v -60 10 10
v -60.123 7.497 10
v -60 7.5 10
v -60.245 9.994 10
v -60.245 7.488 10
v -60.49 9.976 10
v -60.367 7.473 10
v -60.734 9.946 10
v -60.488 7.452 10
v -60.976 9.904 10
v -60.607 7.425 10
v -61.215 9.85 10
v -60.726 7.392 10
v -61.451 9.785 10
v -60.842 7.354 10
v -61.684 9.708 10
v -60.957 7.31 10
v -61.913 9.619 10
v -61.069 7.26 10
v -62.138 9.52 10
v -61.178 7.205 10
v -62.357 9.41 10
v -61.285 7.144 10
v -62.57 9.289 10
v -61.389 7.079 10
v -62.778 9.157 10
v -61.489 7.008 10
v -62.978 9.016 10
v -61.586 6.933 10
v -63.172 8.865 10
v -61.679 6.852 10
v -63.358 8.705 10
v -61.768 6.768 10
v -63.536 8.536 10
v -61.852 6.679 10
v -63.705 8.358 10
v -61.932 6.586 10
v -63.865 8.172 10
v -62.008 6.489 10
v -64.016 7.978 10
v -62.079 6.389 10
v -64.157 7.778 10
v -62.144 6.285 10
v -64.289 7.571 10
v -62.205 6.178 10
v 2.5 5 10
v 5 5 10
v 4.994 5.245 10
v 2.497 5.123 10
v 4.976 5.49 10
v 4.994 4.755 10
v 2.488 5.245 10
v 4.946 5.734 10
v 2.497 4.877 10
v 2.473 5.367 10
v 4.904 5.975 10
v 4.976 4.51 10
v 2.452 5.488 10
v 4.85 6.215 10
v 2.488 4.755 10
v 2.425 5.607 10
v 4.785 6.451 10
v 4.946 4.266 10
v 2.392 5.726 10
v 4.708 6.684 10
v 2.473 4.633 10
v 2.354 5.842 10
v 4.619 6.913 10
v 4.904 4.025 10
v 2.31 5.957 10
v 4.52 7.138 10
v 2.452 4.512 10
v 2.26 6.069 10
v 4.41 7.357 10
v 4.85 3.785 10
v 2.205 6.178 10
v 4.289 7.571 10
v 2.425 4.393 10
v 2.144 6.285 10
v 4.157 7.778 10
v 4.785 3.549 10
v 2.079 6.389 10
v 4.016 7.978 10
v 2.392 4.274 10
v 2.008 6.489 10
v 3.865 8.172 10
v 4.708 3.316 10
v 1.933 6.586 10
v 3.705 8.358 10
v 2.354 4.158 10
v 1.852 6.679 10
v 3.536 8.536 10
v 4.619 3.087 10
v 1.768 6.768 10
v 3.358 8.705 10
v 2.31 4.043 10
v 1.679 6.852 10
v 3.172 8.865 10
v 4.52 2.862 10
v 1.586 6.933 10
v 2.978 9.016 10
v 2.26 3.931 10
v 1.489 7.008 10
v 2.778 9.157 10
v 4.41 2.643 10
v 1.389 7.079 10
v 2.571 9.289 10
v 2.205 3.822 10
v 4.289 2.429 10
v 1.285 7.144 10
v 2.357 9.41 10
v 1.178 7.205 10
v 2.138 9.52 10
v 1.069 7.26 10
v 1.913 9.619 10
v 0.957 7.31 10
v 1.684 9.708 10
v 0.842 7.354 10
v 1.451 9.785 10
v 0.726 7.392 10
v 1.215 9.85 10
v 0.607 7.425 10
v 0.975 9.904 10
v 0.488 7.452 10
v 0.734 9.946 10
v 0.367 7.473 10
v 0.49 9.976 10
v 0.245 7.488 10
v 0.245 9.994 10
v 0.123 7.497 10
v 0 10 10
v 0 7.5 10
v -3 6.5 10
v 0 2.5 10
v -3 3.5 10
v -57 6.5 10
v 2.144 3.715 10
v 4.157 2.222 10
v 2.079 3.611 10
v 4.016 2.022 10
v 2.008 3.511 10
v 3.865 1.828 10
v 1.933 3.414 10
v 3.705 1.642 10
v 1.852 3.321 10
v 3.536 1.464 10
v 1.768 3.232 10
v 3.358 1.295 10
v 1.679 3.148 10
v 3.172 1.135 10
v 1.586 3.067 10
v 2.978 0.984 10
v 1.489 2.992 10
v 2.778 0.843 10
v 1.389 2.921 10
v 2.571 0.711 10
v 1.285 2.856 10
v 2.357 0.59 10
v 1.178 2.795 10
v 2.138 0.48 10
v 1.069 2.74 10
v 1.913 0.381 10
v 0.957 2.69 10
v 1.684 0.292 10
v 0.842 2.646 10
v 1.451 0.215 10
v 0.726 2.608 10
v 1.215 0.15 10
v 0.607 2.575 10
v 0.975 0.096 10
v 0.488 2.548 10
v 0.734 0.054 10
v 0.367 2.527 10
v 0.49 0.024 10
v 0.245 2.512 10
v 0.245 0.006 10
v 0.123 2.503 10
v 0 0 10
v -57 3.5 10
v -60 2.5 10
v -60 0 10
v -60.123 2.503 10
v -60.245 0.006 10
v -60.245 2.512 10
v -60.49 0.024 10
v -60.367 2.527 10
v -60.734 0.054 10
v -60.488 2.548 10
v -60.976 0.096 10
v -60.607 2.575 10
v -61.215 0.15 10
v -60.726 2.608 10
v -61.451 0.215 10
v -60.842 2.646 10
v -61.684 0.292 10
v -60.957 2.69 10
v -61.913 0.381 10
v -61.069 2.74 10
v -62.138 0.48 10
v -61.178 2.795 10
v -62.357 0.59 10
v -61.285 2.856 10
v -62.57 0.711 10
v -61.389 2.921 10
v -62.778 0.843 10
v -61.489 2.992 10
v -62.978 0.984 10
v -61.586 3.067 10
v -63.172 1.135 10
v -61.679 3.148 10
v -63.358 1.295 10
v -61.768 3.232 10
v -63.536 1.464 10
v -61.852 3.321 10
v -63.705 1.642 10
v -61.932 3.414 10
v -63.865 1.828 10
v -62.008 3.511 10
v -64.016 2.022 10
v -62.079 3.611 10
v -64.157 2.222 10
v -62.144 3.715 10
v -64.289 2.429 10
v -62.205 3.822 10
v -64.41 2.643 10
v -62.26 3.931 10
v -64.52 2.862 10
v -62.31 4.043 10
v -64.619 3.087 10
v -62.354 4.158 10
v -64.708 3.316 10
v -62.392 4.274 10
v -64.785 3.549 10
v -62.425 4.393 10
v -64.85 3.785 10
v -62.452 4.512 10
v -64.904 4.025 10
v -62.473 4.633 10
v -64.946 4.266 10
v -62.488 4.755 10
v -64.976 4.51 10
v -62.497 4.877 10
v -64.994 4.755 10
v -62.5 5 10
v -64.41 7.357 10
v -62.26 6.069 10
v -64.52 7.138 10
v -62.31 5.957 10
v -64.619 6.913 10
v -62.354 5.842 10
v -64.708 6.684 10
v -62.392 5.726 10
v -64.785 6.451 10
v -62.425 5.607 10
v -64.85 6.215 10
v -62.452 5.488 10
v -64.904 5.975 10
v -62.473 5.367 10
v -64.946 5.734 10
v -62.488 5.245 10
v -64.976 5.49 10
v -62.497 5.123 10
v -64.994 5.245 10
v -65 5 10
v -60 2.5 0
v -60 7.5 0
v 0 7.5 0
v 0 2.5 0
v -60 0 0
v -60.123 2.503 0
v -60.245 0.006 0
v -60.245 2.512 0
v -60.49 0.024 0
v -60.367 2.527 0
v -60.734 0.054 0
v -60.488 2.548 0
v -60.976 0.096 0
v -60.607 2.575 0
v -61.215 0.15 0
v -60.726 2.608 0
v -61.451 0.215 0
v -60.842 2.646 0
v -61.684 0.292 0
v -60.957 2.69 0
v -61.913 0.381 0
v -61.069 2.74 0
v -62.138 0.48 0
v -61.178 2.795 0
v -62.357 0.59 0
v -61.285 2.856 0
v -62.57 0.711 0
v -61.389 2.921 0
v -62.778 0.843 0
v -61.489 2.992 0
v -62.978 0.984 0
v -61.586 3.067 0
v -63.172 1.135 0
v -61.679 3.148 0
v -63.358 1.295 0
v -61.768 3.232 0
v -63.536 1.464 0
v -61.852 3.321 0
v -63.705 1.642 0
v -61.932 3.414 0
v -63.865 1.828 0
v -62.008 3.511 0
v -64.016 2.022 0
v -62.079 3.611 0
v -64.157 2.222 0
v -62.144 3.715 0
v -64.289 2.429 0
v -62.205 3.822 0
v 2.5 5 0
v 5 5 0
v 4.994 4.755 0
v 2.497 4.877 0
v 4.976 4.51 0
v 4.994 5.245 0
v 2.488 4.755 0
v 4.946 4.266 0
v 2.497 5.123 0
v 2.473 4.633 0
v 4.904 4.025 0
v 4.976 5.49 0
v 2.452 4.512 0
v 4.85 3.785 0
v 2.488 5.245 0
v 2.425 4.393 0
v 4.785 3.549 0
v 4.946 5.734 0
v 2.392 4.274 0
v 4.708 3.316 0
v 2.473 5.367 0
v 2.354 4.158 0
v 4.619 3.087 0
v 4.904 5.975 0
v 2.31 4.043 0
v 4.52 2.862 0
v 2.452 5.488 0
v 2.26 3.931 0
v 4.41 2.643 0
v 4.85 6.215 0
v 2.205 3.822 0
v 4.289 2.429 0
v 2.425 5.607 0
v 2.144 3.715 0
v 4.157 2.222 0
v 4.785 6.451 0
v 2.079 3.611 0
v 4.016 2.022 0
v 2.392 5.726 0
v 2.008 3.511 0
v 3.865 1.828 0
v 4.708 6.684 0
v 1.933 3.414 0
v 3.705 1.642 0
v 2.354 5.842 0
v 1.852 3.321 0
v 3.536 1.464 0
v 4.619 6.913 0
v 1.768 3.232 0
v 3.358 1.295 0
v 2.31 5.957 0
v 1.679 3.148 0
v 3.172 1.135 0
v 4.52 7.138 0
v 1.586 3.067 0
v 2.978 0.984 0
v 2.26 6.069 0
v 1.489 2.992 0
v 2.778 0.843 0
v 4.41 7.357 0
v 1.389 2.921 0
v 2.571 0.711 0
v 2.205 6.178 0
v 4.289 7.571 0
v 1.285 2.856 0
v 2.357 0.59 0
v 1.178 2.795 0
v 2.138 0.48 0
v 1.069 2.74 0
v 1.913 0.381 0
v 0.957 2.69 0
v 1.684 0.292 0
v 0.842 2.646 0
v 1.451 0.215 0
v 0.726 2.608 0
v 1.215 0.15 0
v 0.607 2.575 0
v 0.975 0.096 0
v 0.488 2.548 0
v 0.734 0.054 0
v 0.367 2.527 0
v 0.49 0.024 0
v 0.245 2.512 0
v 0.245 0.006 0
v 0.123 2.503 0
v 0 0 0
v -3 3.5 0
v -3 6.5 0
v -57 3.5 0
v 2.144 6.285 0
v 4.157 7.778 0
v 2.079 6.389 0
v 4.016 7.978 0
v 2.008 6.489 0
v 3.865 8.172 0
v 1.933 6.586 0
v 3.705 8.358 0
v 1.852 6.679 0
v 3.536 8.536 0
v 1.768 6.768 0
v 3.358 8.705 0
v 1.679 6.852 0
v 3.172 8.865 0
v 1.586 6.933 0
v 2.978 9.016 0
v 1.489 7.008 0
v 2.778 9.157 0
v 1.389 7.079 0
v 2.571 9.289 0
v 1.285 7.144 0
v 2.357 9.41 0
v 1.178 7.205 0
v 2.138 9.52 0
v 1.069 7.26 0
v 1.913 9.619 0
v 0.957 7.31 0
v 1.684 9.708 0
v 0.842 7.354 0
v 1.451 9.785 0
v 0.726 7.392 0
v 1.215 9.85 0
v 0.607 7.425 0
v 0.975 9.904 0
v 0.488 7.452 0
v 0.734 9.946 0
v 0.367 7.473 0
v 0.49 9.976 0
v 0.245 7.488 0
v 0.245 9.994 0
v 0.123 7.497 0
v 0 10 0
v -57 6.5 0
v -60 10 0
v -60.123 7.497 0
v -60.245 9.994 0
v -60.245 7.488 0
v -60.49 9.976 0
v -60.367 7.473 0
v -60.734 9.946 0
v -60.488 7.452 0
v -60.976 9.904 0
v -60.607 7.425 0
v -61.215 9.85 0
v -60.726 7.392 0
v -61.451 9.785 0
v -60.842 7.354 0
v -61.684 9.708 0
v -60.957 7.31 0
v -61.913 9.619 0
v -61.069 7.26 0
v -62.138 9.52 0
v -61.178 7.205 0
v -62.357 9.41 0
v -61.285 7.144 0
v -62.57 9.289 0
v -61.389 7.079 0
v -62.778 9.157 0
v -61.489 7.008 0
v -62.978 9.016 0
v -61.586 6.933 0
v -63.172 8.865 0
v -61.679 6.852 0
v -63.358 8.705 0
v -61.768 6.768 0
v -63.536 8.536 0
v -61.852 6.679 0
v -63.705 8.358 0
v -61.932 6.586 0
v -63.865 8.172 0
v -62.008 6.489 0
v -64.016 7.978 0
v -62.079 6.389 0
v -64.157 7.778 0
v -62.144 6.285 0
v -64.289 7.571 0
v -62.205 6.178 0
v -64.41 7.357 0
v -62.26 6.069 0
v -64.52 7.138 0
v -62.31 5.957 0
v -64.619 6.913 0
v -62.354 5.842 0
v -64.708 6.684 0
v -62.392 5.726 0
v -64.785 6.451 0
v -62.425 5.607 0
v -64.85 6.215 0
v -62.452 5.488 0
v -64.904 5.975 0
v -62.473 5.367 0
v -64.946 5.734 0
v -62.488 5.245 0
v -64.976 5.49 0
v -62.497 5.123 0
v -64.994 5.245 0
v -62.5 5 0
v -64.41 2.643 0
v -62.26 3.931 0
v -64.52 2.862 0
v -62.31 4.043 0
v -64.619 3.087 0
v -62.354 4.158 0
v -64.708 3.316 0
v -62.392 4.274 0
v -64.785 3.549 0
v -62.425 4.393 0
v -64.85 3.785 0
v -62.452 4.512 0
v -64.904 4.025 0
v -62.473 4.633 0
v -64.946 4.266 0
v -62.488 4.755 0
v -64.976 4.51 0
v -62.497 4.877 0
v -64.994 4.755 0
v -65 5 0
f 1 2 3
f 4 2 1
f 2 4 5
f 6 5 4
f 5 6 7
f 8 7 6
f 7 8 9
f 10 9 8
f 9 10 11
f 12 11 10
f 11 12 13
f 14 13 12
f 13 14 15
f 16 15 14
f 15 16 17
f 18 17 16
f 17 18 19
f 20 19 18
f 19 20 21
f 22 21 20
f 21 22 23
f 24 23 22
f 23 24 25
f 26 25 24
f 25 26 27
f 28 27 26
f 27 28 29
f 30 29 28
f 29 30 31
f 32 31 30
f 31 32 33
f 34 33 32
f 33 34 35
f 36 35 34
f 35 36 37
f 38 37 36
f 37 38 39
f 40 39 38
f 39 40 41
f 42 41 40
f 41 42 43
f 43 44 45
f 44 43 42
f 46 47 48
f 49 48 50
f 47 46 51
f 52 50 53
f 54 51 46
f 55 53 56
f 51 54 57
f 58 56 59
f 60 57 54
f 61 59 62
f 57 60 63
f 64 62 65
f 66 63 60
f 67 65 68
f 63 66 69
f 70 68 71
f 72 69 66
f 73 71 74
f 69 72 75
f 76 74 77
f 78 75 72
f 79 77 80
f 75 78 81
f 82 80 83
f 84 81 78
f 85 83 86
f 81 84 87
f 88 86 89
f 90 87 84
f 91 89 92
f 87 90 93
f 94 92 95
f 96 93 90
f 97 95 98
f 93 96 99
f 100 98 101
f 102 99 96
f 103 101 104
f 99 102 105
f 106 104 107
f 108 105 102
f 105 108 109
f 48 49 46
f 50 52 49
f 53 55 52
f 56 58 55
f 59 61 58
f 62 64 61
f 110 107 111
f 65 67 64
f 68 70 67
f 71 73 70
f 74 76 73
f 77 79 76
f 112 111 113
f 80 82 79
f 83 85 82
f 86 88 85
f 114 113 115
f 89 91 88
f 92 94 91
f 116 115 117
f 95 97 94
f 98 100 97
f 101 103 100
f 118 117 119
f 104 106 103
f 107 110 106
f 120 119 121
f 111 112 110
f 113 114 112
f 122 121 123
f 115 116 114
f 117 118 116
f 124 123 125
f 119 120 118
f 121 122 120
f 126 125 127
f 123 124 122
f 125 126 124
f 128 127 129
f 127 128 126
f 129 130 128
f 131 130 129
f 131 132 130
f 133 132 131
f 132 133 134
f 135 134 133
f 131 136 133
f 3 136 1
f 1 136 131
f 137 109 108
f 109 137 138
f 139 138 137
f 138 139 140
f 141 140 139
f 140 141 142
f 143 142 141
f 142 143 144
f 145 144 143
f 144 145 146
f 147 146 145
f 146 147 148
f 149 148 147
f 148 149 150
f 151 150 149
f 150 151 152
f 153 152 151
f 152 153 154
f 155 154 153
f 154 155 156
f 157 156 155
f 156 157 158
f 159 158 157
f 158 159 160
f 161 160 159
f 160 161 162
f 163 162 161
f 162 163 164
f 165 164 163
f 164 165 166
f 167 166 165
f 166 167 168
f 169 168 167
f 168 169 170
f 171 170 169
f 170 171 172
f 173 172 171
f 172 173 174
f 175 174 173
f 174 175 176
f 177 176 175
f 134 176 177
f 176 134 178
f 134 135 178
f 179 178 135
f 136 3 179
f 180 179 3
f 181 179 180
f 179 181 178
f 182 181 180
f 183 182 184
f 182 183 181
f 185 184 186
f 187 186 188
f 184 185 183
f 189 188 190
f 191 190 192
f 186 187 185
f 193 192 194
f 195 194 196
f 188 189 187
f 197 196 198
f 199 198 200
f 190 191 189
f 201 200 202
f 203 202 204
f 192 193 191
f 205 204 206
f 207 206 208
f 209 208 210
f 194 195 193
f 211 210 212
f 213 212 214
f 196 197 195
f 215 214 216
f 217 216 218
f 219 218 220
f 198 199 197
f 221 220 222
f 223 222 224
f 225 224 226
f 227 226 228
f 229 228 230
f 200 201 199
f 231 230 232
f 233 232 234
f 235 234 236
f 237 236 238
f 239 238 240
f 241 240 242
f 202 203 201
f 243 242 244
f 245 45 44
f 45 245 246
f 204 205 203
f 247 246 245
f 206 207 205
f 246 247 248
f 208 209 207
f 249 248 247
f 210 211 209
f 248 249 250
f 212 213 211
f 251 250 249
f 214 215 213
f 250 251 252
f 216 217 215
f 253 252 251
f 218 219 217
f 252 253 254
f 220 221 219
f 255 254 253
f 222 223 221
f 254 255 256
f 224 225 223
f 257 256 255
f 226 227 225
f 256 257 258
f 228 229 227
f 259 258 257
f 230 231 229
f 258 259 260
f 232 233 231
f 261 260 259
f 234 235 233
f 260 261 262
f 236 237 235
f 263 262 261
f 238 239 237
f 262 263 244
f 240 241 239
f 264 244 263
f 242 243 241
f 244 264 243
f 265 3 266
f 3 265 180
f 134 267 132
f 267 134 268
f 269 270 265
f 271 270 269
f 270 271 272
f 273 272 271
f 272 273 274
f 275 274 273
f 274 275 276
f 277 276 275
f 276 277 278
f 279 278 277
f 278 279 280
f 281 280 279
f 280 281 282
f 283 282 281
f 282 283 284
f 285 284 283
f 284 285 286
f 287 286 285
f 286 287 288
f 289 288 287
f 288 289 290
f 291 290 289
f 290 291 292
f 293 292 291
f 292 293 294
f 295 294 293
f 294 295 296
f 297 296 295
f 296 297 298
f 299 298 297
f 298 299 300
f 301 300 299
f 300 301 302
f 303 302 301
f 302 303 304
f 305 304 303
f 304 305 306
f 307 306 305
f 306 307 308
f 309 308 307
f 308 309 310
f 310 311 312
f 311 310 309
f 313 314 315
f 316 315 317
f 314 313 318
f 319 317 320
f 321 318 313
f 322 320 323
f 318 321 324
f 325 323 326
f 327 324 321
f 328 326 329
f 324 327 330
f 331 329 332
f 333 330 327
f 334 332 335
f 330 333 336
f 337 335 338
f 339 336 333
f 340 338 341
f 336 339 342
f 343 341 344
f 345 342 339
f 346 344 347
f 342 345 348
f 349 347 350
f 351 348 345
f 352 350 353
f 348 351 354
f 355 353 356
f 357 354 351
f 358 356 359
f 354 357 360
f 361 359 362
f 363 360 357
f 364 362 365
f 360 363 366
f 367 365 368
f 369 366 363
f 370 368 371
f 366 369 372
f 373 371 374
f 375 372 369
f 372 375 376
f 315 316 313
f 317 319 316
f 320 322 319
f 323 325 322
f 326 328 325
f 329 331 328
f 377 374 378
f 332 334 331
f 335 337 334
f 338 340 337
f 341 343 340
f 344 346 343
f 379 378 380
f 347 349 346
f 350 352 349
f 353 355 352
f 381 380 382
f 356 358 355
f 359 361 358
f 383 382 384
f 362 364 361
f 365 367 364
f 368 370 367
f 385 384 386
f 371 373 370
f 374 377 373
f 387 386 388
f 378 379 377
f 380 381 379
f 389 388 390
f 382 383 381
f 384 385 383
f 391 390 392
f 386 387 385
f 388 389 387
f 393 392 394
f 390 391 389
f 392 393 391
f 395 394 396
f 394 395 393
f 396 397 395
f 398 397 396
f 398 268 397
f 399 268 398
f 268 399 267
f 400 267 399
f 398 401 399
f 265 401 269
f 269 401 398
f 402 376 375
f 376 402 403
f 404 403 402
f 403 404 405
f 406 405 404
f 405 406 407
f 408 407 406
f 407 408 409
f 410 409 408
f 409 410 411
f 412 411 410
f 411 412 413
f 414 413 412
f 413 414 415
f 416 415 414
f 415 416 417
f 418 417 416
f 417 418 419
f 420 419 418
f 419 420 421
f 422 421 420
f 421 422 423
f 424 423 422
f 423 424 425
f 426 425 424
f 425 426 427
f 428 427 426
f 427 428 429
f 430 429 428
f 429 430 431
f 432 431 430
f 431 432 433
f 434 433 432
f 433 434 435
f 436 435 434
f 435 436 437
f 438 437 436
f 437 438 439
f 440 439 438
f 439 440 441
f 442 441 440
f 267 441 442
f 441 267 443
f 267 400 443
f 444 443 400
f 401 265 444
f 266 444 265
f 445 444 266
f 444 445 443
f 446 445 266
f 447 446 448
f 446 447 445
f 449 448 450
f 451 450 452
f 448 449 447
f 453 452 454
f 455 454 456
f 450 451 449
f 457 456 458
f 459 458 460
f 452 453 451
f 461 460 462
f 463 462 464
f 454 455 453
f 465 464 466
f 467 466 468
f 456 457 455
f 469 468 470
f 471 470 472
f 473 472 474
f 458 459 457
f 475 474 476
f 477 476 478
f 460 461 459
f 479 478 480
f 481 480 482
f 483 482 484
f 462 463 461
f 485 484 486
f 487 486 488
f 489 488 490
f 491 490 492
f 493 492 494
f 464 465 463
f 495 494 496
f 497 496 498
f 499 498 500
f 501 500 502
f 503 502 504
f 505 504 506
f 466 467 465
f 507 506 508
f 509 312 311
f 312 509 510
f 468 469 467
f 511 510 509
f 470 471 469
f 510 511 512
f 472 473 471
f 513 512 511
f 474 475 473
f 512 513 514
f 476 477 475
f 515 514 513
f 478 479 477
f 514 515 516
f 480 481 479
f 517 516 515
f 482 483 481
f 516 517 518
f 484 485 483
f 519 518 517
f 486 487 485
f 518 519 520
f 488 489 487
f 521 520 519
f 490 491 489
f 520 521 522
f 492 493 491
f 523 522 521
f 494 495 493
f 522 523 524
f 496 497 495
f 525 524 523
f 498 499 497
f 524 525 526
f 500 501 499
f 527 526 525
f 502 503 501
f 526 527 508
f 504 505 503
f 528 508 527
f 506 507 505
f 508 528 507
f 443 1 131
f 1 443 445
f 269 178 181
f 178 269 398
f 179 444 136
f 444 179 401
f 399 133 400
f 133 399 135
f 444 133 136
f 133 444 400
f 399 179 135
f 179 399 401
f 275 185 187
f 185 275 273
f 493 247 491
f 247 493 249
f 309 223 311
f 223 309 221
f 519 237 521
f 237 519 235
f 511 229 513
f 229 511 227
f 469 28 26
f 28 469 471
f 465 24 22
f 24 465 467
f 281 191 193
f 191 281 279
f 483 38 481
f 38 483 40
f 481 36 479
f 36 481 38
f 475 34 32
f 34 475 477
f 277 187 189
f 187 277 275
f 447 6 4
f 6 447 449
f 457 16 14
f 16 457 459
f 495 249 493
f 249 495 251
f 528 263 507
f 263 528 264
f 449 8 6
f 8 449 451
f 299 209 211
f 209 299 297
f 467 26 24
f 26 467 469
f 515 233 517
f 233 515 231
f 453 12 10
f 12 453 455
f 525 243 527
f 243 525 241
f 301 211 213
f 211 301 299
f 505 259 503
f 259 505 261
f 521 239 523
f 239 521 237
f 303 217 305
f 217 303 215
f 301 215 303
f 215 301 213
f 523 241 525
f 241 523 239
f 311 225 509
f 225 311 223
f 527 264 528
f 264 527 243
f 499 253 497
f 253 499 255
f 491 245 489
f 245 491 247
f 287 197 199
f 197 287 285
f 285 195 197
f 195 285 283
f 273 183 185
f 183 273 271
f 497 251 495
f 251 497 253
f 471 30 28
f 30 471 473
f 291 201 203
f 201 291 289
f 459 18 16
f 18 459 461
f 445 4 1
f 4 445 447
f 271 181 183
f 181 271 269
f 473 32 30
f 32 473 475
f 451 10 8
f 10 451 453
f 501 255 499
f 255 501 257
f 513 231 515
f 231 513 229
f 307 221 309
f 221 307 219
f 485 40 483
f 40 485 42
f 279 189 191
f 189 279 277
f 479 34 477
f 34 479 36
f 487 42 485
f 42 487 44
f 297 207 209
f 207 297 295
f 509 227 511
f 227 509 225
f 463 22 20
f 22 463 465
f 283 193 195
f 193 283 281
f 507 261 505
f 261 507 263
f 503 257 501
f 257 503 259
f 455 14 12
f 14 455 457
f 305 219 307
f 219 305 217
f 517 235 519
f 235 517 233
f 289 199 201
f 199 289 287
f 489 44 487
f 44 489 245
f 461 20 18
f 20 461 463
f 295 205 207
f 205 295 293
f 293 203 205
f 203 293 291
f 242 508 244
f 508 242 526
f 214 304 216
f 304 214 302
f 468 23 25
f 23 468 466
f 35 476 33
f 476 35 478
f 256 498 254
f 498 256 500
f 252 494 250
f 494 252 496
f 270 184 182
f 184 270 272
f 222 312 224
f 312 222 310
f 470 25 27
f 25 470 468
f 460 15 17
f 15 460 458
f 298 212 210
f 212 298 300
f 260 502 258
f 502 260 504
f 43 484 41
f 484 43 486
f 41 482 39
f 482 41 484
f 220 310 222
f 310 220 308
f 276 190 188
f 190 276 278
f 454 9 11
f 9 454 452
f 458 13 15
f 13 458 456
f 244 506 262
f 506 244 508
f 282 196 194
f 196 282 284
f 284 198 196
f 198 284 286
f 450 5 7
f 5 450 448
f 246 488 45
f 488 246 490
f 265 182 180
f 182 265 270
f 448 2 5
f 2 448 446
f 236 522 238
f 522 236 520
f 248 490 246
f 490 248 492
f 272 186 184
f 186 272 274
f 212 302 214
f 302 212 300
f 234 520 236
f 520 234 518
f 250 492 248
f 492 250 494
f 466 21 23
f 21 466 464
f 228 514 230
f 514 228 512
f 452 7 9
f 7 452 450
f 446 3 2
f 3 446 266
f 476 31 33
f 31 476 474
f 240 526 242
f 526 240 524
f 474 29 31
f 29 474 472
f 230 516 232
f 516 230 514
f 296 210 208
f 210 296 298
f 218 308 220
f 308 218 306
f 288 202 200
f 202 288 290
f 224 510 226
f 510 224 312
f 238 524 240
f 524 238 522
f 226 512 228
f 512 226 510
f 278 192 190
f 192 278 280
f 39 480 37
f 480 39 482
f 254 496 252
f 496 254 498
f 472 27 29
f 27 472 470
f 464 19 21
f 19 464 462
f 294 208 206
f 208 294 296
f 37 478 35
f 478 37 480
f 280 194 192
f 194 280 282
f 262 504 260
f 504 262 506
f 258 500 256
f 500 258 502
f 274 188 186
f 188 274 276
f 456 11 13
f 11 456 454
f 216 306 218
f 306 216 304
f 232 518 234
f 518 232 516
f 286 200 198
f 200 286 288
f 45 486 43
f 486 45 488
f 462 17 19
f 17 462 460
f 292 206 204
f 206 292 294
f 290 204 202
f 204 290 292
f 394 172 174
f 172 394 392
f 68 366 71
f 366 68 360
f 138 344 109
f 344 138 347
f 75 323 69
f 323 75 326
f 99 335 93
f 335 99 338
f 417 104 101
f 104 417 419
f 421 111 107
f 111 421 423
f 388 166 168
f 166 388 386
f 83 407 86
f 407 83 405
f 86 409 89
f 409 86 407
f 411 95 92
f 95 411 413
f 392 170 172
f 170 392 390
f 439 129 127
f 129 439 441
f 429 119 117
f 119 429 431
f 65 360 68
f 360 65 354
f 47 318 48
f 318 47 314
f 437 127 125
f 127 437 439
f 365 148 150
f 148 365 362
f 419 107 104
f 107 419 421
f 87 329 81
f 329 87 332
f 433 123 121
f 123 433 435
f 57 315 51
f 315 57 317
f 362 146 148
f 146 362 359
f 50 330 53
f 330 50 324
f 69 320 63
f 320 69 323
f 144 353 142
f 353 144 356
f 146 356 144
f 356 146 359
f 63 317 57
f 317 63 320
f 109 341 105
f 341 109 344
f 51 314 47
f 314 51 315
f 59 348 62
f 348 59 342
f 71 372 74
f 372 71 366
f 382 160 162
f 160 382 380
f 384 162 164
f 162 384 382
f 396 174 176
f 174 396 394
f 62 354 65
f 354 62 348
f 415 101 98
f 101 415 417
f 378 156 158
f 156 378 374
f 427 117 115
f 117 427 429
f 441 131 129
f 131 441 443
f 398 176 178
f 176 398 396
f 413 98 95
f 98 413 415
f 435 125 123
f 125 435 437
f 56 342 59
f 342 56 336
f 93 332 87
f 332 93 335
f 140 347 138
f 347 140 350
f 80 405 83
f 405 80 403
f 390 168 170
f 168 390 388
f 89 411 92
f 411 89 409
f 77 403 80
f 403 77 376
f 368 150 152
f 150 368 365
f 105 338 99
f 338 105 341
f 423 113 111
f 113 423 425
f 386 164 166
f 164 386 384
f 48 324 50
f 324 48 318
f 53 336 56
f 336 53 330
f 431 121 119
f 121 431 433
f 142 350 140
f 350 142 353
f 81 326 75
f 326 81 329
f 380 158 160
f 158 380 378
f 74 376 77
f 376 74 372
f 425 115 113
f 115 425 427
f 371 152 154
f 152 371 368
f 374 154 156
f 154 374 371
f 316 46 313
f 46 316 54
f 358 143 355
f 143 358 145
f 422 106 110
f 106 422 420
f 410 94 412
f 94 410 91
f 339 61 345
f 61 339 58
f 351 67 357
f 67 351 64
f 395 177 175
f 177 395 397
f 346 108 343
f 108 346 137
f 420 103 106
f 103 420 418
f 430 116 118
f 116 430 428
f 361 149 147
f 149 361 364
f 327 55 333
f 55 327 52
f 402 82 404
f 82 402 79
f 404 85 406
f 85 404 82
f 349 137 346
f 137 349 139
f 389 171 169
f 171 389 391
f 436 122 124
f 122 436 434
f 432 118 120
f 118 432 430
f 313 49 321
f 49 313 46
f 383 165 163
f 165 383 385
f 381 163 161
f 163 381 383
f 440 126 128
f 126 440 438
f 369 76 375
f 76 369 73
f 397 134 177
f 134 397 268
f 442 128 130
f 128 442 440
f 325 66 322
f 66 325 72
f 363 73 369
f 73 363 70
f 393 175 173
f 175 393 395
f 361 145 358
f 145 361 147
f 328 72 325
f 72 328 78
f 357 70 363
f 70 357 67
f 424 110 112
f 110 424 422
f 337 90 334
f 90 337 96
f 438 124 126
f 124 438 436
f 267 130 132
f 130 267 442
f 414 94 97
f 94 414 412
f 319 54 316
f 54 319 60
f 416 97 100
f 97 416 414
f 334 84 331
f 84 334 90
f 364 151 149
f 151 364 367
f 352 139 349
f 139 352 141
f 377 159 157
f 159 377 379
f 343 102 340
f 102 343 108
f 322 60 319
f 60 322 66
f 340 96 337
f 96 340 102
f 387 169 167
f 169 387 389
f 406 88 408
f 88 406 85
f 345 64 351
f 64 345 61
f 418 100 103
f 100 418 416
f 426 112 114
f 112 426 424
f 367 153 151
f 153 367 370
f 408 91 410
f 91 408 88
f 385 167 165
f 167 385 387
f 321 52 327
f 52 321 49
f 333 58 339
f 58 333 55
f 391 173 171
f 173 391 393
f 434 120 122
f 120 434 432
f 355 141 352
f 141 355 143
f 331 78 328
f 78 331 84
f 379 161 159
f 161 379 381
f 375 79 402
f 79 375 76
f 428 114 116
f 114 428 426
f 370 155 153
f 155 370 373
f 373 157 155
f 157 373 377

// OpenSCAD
// Generated by SolidPython 0.4.6 on 2020-04-04 13:21:45


rotate(a = [0, -90, 0]) {
	union() {
		difference() {
			cube(size = [10.0000000000, 10.0000000000, 60.0000000000]);
			translate(v = [0, 0, 3.0000000000]) {
				translate(v = [0, 3.5000000000, 0]) {
					cube(size = [10.0000000000, 3.0000000000, 54.0000000000]);
				}
			}
		}
		translate(v = [0, 0, 60.0000000000]) {
			translate(v = [0, 5.0000000000, 0]) {
				rotate(a = [0, 90, 0]) {
					difference() {
						cylinder($fn = 128, d = 10.0000000000, h = 10.0000000000);
						cylinder($fn = 128, d = 5.0000000000, h = 10.0000000000);
						translate(v = [0, -5.0000000000, 0]) {
							cube(size = [10.0000000000, 10.0000000000, 10.0000000000]);
						}
					}
				}
			}
		}
		translate(v = [0, 5.0000000000, 0]) {
			translate(v = [10.0000000000, 0, 0]) {
				rotate(a = [0, -90, 0]) {
					difference() {
						cylinder($fn = 128, d = 10.0000000000, h = 10.0000000000);
						cylinder($fn = 128, d = 5.0000000000, h = 10.0000000000);
						translate(v = [0, -5.0000000000, 0]) {
							cube(size = [10.0000000000, 10.0000000000, 10.0000000000]);
						}
					}
				}
			}
		}
	}
}
/***********************************************
*********      SolidPython code:      **********
************************************************
 
import solid as s
import solid.utils as u
import math

def render(suffix, final):
    suffix += ".scad"
    s.scad_render_to_file(final, __file__.replace(".py", suffix))

wire_dia = 2.4
wire_rad = wire_dia / 2.0
wire_height = 6.0
cheek_len = 220.0
cheek_height = 7.0
cheek_depth = 4.0

ear_height = 60.0
ear_length = 10.0
ear_depth = 10.0
fabric_height = 160.0
fabric_thick = 0.5
slot_edge = 3.0
slot_height = ear_height - slot_edge - slot_edge
slot = 3.0
wedge = slot - fabric_thick
wedge_height = slot_height - fabric_thick
wedge_stop = 5.0
lug_hole = 5.0

# earpiece
e = s.cube(size=[ear_length, ear_depth, ear_height])

# earpiece slot
e -= u.up(slot_edge)(
    u.forward((ear_depth / 2.0) - (slot / 2.0))(
        s.cube(size=[ear_length, slot, slot_height])
    )
)
# earpiece lugs
lug = s.cylinder(d=ear_depth, h=ear_length, segments=128)
lug -= s.cylinder(d=lug_hole, h=ear_length, segments=128)
lug -= u.back(ear_depth / 2.0)(
    s.cube(size=[ear_length, ear_depth, ear_length])
)
e += u.up(ear_height)(u.forward(ear_depth / 2.0)(
        u.rotate(a=[0,90,0])(lug)
    )
)
e += u.forward(ear_depth / 2.0)(
    u.right(ear_length)(
        u.rotate(a=[0,-90,0])(lug)
    )
)

# wedge
w = s.cube(size=[ear_length, wedge, wedge_height])
w += u.right(ear_length)(
    s.cube(size=[wedge_stop, wedge_stop, wedge_height])
)

# cheek wire surround
c = s.cube(size=[cheek_len, cheek_depth, cheek_height])
c -= u.forward((cheek_depth / 2.0) - (fabric_thick / 2.0))(
    s.cube(size=[cheek_len, fabric_thick, wire_height])
)
c += u.forward(cheek_depth / 2.0)(
    u.up(cheek_height)(
        u.rotate(a=[0,90,0])(
            s.cylinder(d=cheek_depth, h=cheek_len, segments=128)
        )
    )
)
c -= u.forward(cheek_depth / 2.0)(
    u.up(wire_height)(
        u.rotate(a=[0,90,0])(
            s.cylinder(d=wire_dia, h=cheek_len, segments=128)
        )
    )
)

final = u.left(ear_length)(e) + \
    u.left(ear_length + wedge_stop)(u.back(6.0)(w)) + \
    u.left(cheek_depth)(u.back(14.0)(c))

render('', s.rotate(a=[0, 90, 0])(final))
render('ear', s.rotate(a=[0, -90, 0])(e))
render('wedge', u.up(ear_length + wedge_stop)(s.rotate(a=[0, 90, 0])(w)))
render('cheek', s.rotate(a=[0, 0, 30])(c))
# s.scad_render_to_file(final, __file__.replace('.py', '.scad'))
 
 
************************************************/
